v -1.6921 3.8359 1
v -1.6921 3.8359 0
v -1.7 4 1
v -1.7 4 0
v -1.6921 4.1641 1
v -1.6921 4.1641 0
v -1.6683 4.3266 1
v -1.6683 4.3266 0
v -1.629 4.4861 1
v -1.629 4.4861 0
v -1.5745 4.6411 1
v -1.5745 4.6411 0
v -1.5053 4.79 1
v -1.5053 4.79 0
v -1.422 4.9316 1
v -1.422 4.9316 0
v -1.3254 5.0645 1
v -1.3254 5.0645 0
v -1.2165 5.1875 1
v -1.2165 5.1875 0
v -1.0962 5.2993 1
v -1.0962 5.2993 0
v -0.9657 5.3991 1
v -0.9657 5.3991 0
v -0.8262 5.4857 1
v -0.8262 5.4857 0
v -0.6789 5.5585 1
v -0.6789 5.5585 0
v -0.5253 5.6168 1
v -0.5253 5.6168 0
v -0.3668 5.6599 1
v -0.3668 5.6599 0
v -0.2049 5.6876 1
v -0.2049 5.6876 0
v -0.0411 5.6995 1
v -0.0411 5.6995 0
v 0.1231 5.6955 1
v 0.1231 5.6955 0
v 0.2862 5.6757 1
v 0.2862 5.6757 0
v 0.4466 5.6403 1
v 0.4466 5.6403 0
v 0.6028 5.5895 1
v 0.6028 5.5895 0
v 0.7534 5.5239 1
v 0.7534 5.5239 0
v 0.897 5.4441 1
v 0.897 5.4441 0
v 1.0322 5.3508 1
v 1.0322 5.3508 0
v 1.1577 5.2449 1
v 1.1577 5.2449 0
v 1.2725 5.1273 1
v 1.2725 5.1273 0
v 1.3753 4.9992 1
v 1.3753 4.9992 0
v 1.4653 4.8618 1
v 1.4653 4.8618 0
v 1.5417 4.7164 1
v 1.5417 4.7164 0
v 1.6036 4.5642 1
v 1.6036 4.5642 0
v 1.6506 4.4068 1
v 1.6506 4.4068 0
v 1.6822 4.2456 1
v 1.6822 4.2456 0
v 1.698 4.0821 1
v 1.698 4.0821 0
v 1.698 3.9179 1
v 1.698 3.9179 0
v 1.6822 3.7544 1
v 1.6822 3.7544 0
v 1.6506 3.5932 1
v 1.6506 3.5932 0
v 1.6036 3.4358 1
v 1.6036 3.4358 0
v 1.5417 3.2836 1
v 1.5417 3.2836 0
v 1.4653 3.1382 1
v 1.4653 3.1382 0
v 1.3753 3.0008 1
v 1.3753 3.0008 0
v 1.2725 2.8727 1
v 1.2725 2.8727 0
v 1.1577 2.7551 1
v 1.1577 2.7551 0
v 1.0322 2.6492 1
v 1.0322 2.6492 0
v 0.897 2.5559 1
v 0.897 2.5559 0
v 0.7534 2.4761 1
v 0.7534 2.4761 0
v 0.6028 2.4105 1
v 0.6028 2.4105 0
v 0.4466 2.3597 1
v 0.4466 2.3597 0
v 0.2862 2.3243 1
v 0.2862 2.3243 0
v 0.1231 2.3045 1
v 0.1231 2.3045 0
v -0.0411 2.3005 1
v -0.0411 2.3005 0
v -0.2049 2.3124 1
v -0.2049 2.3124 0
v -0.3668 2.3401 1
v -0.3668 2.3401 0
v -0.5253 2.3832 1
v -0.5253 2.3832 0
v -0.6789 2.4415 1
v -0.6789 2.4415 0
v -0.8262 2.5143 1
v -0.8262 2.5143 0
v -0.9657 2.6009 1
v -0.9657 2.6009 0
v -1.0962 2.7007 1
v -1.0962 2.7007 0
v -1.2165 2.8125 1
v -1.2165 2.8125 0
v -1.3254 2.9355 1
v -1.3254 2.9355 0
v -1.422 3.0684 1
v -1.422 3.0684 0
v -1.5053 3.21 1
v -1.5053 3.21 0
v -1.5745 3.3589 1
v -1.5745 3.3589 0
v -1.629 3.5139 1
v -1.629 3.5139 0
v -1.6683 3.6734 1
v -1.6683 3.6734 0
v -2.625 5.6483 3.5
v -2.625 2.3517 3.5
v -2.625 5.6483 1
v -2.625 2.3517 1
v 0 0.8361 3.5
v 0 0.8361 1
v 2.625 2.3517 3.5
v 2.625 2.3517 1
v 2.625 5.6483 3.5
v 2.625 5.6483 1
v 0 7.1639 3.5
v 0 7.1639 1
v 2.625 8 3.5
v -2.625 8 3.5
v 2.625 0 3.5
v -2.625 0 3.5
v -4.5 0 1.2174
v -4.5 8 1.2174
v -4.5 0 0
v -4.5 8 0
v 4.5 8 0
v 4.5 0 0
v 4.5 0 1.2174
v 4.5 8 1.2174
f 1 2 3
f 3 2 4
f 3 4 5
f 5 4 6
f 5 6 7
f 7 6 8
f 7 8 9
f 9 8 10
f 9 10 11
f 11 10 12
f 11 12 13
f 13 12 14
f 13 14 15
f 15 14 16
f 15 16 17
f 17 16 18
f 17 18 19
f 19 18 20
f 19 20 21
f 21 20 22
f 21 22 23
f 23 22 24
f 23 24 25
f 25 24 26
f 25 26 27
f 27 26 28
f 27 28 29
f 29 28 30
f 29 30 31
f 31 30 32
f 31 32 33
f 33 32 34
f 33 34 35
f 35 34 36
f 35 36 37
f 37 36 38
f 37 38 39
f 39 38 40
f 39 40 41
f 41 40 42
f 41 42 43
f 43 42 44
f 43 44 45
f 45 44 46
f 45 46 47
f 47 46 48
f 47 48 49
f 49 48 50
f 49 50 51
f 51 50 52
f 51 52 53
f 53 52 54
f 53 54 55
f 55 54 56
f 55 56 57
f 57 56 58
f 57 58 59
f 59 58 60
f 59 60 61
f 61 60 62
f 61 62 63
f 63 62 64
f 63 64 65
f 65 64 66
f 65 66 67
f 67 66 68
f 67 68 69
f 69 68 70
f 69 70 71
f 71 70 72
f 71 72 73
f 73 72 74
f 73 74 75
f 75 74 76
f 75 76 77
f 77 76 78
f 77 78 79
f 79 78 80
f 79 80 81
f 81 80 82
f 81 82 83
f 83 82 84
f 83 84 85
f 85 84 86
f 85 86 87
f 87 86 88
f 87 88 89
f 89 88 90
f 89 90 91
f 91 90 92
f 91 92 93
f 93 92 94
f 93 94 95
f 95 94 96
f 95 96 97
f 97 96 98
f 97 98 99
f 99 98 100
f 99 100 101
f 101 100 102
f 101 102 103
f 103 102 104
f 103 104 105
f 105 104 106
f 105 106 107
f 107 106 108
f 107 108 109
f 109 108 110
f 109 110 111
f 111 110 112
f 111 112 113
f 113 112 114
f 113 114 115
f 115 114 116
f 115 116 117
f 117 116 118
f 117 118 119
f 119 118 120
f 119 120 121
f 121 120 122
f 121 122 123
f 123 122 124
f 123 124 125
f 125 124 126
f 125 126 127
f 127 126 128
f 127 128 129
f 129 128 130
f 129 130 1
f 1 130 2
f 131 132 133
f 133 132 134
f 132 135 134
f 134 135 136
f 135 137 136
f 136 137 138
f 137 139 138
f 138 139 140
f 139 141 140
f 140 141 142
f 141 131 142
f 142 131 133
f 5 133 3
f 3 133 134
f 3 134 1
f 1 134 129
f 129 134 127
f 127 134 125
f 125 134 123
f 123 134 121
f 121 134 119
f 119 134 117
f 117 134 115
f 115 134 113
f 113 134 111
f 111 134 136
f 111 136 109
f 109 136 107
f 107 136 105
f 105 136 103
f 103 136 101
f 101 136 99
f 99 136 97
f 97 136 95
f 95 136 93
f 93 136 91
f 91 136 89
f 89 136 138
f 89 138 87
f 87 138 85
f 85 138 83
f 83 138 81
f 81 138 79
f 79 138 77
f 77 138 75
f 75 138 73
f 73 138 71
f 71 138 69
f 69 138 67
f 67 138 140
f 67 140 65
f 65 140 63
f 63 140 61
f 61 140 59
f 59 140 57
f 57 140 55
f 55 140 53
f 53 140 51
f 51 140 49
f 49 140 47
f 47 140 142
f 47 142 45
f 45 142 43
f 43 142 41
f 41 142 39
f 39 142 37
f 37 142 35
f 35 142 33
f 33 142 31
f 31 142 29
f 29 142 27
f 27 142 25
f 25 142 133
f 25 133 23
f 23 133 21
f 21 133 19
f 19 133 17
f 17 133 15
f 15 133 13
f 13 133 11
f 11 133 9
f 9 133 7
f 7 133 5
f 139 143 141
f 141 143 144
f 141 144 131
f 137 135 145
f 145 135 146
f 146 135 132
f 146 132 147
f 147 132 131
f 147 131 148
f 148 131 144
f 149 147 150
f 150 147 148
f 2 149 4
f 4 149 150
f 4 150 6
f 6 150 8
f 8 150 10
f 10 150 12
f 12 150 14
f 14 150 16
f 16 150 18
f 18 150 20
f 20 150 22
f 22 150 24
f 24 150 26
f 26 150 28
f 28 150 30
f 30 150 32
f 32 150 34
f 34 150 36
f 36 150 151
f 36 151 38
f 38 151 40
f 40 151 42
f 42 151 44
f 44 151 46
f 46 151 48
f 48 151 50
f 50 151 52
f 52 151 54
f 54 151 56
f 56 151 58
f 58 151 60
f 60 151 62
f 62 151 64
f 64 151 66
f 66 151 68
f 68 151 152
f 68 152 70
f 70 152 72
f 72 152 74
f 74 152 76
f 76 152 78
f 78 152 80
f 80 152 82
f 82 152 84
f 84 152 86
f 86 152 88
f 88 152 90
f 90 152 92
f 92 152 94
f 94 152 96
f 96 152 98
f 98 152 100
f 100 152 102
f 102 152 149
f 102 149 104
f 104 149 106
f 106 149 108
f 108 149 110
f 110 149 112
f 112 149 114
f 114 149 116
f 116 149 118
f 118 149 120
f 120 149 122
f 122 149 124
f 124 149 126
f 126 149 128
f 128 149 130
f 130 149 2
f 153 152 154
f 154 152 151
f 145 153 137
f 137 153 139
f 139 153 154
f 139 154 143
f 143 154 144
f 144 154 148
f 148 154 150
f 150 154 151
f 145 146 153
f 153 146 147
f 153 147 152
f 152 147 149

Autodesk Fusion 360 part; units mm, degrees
sketch "Sketch1" plane through (0, 0, 0) normal (0, 1, 0) x (1, 0, 0)
  line L0 (0, 0) -> (5.5, 0)
  line L1 (0, -3.5) -> (2.625, -3.5)
  line L2 (2.625, -3.5) -> (5.5, 0)
  line L3 (0, -1.75) -> (0, -22.5)
  line L4 (0, -3.5) -> (-2.625, -3.5)
  line L5 (-2.625, -3.5) -> (-5.5, 0)
  line L6 (0, 0) -> (-5.5, 0)
  line L7 (-4.5, -1.2174) -> (-4.5, 0)
  line L8 (4.5, -1.2174) -> (4.5, 0)
  dimension "d1" = 5.5
  dimension "d2" = 2.625
  dimension "d3" = 3.5
  dimension "d16" = 4.5
extrude "Extrude1" add sketch "Sketch1" along normal blind 8 contours L0 L1 L2 L4 L5 L6 L7 L8
sketch "Sketch2" plane through (0, 0, 3.5) normal (0, 0, 1) x (-1, 0, 0)
  line L0 (2.625, 0) -> (-2.625, 0)
  line L1 (-2.625, 0) -> (-2.625, -8)
  line L2 (-2.625, -8) -> (2.625, -8)
  line L3 (2.625, -8) -> (2.625, 0)
  line L4 (0, -8) -> (0, 0) construction
  line L5 (2.74, -2.4181) -> (0, -0.8361)
  line L6 (0, -0.8361) -> (-2.74, -2.4181)
  line L7 (-2.74, -2.4181) -> (-2.74, -5.5819)
  line L8 (-2.74, -5.5819) -> (0, -7.1639)
  line L9 (0, -7.1639) -> (2.74, -5.5819)
  line L10 (2.74, -5.5819) -> (2.74, -2.4181)
  line L11 (2.72, 25.0704) -> (0, 26.6408)
  line L12 (0, 26.6408) -> (-2.72, 25.0704)
  line L13 (-2.72, 25.0704) -> (-2.72, 21.9296)
  line L14 (-2.72, 21.9296) -> (0, 20.3592)
  line L15 (0, 20.3592) -> (2.72, 21.9296)
  line L16 (2.72, 21.9296) -> (2.72, 25.0704)
  point P0 (0, -4)
  dimension "d6" = 2.74
  dimension "d9" = 4
extrude "Extrude2" cut sketch "Sketch2" against normal blind 2.5 contours L1 L3 L5 L6 L8 L9 | L11 L12 L13 L14 L15 L16
hole "Hole1" at (0, 4, 3.5) direction (0, 0, -1) diameter 3.4 depth 16 tip angle 118
equation "d2 = ( 5.25 / 2 ) * 1 mm"
equation "d6 = ( 5.48 / 2 ) * 1 mm"
